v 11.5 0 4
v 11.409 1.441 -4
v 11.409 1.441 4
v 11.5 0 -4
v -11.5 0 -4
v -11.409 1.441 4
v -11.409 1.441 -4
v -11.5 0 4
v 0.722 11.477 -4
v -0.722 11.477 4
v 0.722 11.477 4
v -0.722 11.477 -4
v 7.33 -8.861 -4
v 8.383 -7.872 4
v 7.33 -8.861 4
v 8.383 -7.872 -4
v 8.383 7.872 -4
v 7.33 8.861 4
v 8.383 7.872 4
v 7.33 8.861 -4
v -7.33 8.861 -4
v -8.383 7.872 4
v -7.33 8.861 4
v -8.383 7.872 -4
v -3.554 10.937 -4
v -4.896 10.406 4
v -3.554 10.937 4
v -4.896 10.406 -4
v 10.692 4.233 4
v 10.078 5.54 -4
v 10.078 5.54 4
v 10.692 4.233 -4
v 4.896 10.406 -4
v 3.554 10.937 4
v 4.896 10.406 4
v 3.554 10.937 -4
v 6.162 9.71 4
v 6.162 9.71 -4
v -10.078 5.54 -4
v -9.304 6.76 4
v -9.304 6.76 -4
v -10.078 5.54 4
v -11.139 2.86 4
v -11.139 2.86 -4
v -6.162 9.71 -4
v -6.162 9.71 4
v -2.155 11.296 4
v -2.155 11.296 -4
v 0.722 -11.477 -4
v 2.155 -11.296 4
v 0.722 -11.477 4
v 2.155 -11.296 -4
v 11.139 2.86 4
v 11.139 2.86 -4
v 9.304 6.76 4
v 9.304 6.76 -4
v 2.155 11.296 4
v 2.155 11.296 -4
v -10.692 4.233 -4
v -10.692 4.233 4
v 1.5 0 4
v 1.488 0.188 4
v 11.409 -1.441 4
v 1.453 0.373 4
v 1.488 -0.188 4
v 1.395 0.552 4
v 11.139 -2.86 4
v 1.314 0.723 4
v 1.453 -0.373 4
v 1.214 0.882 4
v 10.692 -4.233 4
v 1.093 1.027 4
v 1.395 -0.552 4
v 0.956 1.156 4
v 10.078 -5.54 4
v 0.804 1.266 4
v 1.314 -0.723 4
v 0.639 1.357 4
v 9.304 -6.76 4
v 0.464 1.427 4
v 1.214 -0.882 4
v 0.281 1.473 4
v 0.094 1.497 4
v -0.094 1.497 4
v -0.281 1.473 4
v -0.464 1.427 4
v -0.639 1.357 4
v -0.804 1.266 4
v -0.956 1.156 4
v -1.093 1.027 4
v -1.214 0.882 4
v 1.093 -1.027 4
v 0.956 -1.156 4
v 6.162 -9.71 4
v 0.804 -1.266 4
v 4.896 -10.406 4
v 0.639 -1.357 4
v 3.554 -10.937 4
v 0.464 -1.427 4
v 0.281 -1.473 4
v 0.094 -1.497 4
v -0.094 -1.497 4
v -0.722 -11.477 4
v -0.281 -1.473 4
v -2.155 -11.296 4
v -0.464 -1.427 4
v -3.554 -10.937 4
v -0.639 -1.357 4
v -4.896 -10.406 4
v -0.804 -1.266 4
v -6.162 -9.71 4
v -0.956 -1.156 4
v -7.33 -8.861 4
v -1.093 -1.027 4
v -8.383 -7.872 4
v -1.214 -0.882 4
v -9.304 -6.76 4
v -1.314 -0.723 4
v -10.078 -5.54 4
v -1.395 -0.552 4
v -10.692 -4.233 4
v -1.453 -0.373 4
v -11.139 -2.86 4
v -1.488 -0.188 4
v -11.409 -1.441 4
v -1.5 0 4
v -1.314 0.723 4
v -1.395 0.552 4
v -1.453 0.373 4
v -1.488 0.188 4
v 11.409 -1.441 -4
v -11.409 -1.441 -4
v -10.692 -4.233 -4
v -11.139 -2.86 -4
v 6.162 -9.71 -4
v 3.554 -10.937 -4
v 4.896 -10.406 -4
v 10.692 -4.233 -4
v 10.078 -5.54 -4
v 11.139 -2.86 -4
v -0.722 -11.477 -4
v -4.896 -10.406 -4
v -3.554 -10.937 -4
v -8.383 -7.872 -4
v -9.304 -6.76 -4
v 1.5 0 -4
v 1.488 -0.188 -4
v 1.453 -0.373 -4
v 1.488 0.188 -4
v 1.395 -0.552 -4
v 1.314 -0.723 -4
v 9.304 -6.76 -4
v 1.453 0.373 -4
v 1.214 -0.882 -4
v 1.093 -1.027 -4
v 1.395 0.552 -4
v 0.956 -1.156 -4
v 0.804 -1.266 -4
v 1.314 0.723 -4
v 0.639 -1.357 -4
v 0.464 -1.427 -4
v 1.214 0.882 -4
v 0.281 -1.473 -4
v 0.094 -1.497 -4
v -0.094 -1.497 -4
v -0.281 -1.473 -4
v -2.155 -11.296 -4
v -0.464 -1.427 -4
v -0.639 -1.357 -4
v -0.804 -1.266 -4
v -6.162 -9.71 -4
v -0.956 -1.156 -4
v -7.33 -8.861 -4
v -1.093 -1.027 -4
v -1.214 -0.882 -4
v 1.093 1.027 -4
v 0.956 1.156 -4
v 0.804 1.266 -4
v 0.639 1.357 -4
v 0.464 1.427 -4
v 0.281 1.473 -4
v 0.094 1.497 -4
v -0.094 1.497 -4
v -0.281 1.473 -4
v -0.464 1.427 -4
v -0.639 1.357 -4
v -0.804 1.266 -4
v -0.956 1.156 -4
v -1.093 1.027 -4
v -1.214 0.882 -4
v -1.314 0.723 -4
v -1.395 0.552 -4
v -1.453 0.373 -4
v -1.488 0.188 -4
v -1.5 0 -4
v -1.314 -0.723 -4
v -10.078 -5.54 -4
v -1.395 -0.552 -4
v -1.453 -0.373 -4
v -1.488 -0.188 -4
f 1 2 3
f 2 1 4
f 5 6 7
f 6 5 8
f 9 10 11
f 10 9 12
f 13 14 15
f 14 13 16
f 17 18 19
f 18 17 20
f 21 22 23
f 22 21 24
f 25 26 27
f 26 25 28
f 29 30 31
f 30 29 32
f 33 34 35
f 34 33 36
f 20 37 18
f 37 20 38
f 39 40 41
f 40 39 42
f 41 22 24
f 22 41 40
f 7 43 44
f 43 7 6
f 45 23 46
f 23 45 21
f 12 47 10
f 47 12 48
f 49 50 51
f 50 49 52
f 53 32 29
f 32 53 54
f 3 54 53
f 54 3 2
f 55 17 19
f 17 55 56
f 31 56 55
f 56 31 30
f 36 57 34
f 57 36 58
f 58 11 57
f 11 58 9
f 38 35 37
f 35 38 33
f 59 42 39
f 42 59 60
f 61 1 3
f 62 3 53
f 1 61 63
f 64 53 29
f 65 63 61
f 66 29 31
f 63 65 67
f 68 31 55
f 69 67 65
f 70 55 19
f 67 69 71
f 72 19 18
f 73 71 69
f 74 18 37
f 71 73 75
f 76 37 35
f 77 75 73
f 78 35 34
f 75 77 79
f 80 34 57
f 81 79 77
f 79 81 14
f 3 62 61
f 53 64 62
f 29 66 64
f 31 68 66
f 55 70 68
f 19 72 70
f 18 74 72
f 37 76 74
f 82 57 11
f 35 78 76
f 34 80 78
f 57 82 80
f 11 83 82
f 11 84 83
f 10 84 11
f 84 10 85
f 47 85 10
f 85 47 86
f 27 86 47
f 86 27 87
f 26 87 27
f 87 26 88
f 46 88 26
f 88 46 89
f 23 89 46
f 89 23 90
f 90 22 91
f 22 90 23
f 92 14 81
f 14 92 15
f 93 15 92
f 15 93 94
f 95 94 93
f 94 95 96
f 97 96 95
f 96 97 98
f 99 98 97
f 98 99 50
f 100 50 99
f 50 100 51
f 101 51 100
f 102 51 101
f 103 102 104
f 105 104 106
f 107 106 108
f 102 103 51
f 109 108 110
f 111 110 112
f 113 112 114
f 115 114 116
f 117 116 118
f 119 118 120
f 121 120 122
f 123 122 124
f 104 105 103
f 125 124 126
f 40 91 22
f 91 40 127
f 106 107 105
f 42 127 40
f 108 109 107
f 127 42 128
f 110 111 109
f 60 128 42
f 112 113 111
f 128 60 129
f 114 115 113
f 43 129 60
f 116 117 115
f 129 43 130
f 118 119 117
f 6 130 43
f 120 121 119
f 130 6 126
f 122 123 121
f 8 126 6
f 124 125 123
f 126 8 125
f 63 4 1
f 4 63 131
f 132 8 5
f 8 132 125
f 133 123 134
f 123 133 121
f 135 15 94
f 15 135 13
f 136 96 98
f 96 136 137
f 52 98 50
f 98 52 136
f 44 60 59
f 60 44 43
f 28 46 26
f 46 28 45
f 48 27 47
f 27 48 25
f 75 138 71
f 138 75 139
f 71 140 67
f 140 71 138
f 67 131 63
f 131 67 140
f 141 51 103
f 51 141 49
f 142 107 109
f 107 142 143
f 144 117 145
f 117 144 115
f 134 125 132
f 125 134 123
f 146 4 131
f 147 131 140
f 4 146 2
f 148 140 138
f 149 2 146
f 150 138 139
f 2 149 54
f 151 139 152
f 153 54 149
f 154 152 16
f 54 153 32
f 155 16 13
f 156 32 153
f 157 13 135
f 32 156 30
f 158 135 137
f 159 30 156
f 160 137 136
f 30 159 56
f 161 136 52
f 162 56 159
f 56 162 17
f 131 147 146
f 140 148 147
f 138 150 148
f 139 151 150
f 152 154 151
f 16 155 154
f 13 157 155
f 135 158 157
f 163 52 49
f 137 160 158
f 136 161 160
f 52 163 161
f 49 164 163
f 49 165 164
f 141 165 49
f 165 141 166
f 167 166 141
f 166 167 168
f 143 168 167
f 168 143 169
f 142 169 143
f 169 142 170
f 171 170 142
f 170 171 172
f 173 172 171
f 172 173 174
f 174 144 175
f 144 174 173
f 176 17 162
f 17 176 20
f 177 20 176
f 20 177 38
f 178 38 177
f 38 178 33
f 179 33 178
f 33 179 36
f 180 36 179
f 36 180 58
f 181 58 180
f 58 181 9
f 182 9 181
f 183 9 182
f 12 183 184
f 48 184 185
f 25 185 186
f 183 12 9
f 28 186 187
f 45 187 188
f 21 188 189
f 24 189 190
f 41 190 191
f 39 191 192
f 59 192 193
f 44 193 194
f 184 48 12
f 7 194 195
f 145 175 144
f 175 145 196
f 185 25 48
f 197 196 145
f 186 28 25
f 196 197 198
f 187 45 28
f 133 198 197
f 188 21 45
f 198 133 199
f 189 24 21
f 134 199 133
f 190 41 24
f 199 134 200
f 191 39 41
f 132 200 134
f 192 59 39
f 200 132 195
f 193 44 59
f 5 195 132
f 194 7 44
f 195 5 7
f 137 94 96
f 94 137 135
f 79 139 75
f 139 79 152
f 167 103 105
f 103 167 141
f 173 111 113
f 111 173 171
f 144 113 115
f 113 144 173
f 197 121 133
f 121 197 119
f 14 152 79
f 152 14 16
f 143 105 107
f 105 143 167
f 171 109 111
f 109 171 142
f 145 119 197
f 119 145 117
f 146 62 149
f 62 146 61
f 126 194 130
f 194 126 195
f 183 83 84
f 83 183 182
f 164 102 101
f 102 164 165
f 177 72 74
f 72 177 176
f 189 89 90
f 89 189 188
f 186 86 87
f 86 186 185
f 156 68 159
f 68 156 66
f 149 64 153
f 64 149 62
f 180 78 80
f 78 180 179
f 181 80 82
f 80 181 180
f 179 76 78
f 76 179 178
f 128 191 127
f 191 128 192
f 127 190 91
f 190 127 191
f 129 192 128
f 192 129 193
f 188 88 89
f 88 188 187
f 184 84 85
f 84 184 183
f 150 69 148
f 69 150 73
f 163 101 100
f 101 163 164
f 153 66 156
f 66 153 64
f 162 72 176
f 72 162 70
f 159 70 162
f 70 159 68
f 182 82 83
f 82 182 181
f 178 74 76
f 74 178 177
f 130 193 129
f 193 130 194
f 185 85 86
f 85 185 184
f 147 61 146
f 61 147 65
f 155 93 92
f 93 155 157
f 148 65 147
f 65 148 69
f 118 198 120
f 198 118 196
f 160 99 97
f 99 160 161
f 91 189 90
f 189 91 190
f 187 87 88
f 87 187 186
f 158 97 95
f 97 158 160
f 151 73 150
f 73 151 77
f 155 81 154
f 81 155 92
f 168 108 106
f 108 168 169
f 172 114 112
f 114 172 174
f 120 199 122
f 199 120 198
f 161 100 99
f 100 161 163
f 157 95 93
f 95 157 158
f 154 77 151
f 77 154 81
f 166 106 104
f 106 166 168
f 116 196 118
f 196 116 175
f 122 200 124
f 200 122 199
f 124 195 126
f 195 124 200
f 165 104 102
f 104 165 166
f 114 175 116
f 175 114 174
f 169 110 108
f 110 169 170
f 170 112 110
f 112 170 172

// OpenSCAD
$fn = 50;


difference() {
	union() {
		translate(v = [0, 0, -4.0000000000]) {
			cylinder(h = 8, r = 11.5000000000);
		}
	}
	union() {
		translate(v = [0, 0, -100.0000000000]) {
			cylinder(h = 200, r = 1.5000000000);
		}
	}
}
